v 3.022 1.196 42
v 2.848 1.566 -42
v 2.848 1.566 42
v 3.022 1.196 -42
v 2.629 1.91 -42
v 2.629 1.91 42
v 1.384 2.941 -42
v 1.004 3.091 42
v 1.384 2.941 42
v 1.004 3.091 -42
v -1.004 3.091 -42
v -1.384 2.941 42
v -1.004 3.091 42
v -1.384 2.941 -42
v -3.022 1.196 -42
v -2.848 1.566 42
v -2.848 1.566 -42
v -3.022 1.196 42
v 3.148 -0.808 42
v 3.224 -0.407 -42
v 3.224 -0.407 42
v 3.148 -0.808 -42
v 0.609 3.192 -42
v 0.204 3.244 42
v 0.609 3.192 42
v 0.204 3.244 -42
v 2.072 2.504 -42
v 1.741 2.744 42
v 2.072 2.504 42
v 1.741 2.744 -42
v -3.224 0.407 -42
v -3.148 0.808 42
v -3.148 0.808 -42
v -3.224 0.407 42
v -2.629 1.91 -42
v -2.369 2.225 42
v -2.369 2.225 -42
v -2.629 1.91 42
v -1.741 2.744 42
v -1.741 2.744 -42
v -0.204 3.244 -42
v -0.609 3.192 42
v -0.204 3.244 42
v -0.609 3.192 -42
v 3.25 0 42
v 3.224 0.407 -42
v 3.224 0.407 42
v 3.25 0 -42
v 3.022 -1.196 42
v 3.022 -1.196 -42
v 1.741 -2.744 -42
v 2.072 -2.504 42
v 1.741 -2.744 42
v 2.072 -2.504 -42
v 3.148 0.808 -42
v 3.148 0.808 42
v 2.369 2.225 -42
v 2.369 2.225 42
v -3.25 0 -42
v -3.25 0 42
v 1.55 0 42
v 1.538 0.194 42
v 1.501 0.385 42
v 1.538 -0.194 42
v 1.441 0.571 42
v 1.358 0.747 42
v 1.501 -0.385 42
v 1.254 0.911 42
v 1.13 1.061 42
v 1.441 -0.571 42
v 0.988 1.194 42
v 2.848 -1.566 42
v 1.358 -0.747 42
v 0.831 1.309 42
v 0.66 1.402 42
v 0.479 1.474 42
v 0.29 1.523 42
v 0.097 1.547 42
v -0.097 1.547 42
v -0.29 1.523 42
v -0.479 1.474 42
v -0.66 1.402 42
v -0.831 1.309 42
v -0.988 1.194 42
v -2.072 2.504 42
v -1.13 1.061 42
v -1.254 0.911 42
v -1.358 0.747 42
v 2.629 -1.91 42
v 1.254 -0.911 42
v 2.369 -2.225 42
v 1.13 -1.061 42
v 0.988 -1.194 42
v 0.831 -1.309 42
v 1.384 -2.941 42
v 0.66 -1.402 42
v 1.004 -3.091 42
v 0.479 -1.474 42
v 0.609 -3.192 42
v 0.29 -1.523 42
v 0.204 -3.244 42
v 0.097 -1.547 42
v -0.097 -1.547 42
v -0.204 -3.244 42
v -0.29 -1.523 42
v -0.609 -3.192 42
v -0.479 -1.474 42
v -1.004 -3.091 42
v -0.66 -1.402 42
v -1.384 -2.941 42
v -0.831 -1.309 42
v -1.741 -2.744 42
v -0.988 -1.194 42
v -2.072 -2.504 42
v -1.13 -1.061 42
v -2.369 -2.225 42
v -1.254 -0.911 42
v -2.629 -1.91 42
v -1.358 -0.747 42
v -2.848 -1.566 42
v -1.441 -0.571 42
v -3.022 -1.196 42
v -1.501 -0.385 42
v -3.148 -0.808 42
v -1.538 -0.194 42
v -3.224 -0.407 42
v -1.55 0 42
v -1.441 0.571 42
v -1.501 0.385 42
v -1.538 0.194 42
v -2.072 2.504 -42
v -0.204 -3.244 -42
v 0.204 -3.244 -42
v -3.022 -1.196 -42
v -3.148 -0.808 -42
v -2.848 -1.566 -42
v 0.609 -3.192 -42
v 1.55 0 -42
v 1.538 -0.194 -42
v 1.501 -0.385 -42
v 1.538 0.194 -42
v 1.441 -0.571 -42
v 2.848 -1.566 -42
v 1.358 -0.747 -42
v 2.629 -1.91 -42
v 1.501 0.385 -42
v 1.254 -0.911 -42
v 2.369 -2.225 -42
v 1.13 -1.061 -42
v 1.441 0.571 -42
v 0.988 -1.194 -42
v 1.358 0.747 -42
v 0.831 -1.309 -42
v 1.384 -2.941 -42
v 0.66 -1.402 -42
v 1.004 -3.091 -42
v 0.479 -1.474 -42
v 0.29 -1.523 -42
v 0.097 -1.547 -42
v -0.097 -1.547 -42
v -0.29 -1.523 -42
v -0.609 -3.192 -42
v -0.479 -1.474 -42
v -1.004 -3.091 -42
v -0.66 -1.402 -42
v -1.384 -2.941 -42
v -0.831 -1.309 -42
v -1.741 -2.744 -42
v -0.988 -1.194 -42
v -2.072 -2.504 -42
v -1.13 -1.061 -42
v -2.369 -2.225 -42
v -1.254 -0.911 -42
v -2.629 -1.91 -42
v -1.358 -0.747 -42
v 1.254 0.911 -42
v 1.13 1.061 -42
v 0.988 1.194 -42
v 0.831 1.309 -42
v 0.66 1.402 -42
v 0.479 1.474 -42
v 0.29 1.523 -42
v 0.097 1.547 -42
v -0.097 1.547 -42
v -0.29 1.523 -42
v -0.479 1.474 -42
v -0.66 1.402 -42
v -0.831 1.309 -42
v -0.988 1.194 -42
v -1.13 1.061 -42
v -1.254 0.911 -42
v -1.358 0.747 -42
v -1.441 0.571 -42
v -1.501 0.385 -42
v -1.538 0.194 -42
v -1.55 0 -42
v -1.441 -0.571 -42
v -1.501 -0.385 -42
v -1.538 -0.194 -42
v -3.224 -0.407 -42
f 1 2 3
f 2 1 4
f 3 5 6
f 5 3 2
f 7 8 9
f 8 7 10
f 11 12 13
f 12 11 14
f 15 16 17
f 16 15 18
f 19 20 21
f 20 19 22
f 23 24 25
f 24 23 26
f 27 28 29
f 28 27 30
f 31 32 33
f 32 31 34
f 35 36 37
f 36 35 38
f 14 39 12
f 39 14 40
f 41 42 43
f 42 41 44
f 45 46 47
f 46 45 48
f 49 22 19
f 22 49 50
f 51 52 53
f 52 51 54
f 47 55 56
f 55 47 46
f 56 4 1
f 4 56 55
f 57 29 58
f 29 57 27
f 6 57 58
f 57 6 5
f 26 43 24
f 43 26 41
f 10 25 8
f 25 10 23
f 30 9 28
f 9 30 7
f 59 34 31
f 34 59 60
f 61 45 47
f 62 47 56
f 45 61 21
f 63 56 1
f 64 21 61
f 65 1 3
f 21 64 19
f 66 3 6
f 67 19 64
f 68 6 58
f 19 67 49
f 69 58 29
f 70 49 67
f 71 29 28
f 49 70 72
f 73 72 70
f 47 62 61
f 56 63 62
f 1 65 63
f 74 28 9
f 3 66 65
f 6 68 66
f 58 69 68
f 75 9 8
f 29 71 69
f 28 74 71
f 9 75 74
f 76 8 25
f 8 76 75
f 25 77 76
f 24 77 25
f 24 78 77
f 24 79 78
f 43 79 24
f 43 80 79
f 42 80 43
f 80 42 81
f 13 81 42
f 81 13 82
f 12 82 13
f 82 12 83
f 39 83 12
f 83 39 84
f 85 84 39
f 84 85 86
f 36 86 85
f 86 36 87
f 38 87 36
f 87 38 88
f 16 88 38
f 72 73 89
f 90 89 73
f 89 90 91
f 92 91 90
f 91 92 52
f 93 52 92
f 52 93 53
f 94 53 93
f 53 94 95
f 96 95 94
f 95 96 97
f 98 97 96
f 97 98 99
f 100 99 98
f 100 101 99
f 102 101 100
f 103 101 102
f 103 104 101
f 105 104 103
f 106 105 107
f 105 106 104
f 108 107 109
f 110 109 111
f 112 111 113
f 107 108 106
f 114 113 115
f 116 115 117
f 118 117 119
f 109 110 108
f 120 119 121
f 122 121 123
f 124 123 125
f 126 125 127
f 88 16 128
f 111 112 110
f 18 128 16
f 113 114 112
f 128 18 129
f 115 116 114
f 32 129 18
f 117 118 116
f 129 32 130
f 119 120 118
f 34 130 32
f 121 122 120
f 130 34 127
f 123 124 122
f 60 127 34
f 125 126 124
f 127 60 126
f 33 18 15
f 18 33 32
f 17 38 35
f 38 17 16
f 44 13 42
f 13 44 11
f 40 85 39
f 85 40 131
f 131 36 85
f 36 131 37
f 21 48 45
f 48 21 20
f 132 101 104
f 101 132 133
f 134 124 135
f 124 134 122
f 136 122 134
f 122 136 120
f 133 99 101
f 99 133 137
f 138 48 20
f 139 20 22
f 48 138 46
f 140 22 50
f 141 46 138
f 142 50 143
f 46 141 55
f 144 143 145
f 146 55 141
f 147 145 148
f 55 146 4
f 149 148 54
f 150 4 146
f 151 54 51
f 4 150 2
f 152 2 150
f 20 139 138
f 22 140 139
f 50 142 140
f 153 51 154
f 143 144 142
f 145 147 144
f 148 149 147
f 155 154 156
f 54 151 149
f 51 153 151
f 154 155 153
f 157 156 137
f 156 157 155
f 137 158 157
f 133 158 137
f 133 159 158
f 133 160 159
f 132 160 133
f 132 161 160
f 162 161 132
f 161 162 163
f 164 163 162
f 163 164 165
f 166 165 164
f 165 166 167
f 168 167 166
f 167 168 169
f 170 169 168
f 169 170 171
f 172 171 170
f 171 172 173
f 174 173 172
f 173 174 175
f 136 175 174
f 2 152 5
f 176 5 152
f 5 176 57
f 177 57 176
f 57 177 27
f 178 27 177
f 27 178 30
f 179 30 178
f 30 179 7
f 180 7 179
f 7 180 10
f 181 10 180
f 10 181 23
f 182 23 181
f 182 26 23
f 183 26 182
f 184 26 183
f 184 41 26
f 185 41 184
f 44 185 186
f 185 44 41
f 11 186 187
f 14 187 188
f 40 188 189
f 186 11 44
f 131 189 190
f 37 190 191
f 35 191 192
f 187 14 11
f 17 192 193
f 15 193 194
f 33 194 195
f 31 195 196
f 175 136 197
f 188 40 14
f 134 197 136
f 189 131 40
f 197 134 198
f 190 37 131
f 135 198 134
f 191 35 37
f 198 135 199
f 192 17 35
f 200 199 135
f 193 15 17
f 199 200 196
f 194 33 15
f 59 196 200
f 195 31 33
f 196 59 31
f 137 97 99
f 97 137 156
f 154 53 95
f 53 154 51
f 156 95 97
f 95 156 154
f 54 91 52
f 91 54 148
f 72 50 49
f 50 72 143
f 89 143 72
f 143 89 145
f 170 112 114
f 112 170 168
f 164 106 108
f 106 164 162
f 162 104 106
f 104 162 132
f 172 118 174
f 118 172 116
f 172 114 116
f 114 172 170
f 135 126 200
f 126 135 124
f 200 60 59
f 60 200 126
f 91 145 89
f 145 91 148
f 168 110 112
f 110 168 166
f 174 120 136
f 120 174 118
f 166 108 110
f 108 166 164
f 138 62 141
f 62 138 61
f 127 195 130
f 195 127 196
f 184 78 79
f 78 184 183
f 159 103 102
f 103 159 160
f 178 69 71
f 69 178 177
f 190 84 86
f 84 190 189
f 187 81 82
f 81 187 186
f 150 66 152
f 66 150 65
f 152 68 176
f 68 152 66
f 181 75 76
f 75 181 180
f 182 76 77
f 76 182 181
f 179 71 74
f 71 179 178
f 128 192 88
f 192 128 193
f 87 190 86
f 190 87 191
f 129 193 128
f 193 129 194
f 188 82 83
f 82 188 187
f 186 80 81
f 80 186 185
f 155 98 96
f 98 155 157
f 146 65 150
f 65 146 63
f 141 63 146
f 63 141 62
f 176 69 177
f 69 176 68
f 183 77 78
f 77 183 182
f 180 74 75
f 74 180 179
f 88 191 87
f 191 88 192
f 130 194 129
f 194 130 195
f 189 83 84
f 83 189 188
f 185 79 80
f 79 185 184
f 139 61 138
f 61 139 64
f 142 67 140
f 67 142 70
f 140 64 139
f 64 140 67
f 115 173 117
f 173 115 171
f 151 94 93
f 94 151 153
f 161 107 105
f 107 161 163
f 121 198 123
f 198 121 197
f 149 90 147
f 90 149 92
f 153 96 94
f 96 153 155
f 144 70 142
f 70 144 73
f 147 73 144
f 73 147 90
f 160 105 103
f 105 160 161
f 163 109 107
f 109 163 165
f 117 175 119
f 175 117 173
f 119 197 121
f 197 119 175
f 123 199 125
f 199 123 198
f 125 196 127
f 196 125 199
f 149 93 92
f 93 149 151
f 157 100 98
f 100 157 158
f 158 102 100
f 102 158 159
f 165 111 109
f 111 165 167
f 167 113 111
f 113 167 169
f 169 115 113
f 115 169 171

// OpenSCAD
$fn = 50;


difference() {
	union() {
		translate(v = [0, 0, -42.0000000000]) {
			cylinder(h = 84, r = 3.2500000000);
		}
	}
	union() {
		translate(v = [0, 0, -100.0000000000]) {
			cylinder(h = 200, r = 1.5500000000);
		}
	}
}
